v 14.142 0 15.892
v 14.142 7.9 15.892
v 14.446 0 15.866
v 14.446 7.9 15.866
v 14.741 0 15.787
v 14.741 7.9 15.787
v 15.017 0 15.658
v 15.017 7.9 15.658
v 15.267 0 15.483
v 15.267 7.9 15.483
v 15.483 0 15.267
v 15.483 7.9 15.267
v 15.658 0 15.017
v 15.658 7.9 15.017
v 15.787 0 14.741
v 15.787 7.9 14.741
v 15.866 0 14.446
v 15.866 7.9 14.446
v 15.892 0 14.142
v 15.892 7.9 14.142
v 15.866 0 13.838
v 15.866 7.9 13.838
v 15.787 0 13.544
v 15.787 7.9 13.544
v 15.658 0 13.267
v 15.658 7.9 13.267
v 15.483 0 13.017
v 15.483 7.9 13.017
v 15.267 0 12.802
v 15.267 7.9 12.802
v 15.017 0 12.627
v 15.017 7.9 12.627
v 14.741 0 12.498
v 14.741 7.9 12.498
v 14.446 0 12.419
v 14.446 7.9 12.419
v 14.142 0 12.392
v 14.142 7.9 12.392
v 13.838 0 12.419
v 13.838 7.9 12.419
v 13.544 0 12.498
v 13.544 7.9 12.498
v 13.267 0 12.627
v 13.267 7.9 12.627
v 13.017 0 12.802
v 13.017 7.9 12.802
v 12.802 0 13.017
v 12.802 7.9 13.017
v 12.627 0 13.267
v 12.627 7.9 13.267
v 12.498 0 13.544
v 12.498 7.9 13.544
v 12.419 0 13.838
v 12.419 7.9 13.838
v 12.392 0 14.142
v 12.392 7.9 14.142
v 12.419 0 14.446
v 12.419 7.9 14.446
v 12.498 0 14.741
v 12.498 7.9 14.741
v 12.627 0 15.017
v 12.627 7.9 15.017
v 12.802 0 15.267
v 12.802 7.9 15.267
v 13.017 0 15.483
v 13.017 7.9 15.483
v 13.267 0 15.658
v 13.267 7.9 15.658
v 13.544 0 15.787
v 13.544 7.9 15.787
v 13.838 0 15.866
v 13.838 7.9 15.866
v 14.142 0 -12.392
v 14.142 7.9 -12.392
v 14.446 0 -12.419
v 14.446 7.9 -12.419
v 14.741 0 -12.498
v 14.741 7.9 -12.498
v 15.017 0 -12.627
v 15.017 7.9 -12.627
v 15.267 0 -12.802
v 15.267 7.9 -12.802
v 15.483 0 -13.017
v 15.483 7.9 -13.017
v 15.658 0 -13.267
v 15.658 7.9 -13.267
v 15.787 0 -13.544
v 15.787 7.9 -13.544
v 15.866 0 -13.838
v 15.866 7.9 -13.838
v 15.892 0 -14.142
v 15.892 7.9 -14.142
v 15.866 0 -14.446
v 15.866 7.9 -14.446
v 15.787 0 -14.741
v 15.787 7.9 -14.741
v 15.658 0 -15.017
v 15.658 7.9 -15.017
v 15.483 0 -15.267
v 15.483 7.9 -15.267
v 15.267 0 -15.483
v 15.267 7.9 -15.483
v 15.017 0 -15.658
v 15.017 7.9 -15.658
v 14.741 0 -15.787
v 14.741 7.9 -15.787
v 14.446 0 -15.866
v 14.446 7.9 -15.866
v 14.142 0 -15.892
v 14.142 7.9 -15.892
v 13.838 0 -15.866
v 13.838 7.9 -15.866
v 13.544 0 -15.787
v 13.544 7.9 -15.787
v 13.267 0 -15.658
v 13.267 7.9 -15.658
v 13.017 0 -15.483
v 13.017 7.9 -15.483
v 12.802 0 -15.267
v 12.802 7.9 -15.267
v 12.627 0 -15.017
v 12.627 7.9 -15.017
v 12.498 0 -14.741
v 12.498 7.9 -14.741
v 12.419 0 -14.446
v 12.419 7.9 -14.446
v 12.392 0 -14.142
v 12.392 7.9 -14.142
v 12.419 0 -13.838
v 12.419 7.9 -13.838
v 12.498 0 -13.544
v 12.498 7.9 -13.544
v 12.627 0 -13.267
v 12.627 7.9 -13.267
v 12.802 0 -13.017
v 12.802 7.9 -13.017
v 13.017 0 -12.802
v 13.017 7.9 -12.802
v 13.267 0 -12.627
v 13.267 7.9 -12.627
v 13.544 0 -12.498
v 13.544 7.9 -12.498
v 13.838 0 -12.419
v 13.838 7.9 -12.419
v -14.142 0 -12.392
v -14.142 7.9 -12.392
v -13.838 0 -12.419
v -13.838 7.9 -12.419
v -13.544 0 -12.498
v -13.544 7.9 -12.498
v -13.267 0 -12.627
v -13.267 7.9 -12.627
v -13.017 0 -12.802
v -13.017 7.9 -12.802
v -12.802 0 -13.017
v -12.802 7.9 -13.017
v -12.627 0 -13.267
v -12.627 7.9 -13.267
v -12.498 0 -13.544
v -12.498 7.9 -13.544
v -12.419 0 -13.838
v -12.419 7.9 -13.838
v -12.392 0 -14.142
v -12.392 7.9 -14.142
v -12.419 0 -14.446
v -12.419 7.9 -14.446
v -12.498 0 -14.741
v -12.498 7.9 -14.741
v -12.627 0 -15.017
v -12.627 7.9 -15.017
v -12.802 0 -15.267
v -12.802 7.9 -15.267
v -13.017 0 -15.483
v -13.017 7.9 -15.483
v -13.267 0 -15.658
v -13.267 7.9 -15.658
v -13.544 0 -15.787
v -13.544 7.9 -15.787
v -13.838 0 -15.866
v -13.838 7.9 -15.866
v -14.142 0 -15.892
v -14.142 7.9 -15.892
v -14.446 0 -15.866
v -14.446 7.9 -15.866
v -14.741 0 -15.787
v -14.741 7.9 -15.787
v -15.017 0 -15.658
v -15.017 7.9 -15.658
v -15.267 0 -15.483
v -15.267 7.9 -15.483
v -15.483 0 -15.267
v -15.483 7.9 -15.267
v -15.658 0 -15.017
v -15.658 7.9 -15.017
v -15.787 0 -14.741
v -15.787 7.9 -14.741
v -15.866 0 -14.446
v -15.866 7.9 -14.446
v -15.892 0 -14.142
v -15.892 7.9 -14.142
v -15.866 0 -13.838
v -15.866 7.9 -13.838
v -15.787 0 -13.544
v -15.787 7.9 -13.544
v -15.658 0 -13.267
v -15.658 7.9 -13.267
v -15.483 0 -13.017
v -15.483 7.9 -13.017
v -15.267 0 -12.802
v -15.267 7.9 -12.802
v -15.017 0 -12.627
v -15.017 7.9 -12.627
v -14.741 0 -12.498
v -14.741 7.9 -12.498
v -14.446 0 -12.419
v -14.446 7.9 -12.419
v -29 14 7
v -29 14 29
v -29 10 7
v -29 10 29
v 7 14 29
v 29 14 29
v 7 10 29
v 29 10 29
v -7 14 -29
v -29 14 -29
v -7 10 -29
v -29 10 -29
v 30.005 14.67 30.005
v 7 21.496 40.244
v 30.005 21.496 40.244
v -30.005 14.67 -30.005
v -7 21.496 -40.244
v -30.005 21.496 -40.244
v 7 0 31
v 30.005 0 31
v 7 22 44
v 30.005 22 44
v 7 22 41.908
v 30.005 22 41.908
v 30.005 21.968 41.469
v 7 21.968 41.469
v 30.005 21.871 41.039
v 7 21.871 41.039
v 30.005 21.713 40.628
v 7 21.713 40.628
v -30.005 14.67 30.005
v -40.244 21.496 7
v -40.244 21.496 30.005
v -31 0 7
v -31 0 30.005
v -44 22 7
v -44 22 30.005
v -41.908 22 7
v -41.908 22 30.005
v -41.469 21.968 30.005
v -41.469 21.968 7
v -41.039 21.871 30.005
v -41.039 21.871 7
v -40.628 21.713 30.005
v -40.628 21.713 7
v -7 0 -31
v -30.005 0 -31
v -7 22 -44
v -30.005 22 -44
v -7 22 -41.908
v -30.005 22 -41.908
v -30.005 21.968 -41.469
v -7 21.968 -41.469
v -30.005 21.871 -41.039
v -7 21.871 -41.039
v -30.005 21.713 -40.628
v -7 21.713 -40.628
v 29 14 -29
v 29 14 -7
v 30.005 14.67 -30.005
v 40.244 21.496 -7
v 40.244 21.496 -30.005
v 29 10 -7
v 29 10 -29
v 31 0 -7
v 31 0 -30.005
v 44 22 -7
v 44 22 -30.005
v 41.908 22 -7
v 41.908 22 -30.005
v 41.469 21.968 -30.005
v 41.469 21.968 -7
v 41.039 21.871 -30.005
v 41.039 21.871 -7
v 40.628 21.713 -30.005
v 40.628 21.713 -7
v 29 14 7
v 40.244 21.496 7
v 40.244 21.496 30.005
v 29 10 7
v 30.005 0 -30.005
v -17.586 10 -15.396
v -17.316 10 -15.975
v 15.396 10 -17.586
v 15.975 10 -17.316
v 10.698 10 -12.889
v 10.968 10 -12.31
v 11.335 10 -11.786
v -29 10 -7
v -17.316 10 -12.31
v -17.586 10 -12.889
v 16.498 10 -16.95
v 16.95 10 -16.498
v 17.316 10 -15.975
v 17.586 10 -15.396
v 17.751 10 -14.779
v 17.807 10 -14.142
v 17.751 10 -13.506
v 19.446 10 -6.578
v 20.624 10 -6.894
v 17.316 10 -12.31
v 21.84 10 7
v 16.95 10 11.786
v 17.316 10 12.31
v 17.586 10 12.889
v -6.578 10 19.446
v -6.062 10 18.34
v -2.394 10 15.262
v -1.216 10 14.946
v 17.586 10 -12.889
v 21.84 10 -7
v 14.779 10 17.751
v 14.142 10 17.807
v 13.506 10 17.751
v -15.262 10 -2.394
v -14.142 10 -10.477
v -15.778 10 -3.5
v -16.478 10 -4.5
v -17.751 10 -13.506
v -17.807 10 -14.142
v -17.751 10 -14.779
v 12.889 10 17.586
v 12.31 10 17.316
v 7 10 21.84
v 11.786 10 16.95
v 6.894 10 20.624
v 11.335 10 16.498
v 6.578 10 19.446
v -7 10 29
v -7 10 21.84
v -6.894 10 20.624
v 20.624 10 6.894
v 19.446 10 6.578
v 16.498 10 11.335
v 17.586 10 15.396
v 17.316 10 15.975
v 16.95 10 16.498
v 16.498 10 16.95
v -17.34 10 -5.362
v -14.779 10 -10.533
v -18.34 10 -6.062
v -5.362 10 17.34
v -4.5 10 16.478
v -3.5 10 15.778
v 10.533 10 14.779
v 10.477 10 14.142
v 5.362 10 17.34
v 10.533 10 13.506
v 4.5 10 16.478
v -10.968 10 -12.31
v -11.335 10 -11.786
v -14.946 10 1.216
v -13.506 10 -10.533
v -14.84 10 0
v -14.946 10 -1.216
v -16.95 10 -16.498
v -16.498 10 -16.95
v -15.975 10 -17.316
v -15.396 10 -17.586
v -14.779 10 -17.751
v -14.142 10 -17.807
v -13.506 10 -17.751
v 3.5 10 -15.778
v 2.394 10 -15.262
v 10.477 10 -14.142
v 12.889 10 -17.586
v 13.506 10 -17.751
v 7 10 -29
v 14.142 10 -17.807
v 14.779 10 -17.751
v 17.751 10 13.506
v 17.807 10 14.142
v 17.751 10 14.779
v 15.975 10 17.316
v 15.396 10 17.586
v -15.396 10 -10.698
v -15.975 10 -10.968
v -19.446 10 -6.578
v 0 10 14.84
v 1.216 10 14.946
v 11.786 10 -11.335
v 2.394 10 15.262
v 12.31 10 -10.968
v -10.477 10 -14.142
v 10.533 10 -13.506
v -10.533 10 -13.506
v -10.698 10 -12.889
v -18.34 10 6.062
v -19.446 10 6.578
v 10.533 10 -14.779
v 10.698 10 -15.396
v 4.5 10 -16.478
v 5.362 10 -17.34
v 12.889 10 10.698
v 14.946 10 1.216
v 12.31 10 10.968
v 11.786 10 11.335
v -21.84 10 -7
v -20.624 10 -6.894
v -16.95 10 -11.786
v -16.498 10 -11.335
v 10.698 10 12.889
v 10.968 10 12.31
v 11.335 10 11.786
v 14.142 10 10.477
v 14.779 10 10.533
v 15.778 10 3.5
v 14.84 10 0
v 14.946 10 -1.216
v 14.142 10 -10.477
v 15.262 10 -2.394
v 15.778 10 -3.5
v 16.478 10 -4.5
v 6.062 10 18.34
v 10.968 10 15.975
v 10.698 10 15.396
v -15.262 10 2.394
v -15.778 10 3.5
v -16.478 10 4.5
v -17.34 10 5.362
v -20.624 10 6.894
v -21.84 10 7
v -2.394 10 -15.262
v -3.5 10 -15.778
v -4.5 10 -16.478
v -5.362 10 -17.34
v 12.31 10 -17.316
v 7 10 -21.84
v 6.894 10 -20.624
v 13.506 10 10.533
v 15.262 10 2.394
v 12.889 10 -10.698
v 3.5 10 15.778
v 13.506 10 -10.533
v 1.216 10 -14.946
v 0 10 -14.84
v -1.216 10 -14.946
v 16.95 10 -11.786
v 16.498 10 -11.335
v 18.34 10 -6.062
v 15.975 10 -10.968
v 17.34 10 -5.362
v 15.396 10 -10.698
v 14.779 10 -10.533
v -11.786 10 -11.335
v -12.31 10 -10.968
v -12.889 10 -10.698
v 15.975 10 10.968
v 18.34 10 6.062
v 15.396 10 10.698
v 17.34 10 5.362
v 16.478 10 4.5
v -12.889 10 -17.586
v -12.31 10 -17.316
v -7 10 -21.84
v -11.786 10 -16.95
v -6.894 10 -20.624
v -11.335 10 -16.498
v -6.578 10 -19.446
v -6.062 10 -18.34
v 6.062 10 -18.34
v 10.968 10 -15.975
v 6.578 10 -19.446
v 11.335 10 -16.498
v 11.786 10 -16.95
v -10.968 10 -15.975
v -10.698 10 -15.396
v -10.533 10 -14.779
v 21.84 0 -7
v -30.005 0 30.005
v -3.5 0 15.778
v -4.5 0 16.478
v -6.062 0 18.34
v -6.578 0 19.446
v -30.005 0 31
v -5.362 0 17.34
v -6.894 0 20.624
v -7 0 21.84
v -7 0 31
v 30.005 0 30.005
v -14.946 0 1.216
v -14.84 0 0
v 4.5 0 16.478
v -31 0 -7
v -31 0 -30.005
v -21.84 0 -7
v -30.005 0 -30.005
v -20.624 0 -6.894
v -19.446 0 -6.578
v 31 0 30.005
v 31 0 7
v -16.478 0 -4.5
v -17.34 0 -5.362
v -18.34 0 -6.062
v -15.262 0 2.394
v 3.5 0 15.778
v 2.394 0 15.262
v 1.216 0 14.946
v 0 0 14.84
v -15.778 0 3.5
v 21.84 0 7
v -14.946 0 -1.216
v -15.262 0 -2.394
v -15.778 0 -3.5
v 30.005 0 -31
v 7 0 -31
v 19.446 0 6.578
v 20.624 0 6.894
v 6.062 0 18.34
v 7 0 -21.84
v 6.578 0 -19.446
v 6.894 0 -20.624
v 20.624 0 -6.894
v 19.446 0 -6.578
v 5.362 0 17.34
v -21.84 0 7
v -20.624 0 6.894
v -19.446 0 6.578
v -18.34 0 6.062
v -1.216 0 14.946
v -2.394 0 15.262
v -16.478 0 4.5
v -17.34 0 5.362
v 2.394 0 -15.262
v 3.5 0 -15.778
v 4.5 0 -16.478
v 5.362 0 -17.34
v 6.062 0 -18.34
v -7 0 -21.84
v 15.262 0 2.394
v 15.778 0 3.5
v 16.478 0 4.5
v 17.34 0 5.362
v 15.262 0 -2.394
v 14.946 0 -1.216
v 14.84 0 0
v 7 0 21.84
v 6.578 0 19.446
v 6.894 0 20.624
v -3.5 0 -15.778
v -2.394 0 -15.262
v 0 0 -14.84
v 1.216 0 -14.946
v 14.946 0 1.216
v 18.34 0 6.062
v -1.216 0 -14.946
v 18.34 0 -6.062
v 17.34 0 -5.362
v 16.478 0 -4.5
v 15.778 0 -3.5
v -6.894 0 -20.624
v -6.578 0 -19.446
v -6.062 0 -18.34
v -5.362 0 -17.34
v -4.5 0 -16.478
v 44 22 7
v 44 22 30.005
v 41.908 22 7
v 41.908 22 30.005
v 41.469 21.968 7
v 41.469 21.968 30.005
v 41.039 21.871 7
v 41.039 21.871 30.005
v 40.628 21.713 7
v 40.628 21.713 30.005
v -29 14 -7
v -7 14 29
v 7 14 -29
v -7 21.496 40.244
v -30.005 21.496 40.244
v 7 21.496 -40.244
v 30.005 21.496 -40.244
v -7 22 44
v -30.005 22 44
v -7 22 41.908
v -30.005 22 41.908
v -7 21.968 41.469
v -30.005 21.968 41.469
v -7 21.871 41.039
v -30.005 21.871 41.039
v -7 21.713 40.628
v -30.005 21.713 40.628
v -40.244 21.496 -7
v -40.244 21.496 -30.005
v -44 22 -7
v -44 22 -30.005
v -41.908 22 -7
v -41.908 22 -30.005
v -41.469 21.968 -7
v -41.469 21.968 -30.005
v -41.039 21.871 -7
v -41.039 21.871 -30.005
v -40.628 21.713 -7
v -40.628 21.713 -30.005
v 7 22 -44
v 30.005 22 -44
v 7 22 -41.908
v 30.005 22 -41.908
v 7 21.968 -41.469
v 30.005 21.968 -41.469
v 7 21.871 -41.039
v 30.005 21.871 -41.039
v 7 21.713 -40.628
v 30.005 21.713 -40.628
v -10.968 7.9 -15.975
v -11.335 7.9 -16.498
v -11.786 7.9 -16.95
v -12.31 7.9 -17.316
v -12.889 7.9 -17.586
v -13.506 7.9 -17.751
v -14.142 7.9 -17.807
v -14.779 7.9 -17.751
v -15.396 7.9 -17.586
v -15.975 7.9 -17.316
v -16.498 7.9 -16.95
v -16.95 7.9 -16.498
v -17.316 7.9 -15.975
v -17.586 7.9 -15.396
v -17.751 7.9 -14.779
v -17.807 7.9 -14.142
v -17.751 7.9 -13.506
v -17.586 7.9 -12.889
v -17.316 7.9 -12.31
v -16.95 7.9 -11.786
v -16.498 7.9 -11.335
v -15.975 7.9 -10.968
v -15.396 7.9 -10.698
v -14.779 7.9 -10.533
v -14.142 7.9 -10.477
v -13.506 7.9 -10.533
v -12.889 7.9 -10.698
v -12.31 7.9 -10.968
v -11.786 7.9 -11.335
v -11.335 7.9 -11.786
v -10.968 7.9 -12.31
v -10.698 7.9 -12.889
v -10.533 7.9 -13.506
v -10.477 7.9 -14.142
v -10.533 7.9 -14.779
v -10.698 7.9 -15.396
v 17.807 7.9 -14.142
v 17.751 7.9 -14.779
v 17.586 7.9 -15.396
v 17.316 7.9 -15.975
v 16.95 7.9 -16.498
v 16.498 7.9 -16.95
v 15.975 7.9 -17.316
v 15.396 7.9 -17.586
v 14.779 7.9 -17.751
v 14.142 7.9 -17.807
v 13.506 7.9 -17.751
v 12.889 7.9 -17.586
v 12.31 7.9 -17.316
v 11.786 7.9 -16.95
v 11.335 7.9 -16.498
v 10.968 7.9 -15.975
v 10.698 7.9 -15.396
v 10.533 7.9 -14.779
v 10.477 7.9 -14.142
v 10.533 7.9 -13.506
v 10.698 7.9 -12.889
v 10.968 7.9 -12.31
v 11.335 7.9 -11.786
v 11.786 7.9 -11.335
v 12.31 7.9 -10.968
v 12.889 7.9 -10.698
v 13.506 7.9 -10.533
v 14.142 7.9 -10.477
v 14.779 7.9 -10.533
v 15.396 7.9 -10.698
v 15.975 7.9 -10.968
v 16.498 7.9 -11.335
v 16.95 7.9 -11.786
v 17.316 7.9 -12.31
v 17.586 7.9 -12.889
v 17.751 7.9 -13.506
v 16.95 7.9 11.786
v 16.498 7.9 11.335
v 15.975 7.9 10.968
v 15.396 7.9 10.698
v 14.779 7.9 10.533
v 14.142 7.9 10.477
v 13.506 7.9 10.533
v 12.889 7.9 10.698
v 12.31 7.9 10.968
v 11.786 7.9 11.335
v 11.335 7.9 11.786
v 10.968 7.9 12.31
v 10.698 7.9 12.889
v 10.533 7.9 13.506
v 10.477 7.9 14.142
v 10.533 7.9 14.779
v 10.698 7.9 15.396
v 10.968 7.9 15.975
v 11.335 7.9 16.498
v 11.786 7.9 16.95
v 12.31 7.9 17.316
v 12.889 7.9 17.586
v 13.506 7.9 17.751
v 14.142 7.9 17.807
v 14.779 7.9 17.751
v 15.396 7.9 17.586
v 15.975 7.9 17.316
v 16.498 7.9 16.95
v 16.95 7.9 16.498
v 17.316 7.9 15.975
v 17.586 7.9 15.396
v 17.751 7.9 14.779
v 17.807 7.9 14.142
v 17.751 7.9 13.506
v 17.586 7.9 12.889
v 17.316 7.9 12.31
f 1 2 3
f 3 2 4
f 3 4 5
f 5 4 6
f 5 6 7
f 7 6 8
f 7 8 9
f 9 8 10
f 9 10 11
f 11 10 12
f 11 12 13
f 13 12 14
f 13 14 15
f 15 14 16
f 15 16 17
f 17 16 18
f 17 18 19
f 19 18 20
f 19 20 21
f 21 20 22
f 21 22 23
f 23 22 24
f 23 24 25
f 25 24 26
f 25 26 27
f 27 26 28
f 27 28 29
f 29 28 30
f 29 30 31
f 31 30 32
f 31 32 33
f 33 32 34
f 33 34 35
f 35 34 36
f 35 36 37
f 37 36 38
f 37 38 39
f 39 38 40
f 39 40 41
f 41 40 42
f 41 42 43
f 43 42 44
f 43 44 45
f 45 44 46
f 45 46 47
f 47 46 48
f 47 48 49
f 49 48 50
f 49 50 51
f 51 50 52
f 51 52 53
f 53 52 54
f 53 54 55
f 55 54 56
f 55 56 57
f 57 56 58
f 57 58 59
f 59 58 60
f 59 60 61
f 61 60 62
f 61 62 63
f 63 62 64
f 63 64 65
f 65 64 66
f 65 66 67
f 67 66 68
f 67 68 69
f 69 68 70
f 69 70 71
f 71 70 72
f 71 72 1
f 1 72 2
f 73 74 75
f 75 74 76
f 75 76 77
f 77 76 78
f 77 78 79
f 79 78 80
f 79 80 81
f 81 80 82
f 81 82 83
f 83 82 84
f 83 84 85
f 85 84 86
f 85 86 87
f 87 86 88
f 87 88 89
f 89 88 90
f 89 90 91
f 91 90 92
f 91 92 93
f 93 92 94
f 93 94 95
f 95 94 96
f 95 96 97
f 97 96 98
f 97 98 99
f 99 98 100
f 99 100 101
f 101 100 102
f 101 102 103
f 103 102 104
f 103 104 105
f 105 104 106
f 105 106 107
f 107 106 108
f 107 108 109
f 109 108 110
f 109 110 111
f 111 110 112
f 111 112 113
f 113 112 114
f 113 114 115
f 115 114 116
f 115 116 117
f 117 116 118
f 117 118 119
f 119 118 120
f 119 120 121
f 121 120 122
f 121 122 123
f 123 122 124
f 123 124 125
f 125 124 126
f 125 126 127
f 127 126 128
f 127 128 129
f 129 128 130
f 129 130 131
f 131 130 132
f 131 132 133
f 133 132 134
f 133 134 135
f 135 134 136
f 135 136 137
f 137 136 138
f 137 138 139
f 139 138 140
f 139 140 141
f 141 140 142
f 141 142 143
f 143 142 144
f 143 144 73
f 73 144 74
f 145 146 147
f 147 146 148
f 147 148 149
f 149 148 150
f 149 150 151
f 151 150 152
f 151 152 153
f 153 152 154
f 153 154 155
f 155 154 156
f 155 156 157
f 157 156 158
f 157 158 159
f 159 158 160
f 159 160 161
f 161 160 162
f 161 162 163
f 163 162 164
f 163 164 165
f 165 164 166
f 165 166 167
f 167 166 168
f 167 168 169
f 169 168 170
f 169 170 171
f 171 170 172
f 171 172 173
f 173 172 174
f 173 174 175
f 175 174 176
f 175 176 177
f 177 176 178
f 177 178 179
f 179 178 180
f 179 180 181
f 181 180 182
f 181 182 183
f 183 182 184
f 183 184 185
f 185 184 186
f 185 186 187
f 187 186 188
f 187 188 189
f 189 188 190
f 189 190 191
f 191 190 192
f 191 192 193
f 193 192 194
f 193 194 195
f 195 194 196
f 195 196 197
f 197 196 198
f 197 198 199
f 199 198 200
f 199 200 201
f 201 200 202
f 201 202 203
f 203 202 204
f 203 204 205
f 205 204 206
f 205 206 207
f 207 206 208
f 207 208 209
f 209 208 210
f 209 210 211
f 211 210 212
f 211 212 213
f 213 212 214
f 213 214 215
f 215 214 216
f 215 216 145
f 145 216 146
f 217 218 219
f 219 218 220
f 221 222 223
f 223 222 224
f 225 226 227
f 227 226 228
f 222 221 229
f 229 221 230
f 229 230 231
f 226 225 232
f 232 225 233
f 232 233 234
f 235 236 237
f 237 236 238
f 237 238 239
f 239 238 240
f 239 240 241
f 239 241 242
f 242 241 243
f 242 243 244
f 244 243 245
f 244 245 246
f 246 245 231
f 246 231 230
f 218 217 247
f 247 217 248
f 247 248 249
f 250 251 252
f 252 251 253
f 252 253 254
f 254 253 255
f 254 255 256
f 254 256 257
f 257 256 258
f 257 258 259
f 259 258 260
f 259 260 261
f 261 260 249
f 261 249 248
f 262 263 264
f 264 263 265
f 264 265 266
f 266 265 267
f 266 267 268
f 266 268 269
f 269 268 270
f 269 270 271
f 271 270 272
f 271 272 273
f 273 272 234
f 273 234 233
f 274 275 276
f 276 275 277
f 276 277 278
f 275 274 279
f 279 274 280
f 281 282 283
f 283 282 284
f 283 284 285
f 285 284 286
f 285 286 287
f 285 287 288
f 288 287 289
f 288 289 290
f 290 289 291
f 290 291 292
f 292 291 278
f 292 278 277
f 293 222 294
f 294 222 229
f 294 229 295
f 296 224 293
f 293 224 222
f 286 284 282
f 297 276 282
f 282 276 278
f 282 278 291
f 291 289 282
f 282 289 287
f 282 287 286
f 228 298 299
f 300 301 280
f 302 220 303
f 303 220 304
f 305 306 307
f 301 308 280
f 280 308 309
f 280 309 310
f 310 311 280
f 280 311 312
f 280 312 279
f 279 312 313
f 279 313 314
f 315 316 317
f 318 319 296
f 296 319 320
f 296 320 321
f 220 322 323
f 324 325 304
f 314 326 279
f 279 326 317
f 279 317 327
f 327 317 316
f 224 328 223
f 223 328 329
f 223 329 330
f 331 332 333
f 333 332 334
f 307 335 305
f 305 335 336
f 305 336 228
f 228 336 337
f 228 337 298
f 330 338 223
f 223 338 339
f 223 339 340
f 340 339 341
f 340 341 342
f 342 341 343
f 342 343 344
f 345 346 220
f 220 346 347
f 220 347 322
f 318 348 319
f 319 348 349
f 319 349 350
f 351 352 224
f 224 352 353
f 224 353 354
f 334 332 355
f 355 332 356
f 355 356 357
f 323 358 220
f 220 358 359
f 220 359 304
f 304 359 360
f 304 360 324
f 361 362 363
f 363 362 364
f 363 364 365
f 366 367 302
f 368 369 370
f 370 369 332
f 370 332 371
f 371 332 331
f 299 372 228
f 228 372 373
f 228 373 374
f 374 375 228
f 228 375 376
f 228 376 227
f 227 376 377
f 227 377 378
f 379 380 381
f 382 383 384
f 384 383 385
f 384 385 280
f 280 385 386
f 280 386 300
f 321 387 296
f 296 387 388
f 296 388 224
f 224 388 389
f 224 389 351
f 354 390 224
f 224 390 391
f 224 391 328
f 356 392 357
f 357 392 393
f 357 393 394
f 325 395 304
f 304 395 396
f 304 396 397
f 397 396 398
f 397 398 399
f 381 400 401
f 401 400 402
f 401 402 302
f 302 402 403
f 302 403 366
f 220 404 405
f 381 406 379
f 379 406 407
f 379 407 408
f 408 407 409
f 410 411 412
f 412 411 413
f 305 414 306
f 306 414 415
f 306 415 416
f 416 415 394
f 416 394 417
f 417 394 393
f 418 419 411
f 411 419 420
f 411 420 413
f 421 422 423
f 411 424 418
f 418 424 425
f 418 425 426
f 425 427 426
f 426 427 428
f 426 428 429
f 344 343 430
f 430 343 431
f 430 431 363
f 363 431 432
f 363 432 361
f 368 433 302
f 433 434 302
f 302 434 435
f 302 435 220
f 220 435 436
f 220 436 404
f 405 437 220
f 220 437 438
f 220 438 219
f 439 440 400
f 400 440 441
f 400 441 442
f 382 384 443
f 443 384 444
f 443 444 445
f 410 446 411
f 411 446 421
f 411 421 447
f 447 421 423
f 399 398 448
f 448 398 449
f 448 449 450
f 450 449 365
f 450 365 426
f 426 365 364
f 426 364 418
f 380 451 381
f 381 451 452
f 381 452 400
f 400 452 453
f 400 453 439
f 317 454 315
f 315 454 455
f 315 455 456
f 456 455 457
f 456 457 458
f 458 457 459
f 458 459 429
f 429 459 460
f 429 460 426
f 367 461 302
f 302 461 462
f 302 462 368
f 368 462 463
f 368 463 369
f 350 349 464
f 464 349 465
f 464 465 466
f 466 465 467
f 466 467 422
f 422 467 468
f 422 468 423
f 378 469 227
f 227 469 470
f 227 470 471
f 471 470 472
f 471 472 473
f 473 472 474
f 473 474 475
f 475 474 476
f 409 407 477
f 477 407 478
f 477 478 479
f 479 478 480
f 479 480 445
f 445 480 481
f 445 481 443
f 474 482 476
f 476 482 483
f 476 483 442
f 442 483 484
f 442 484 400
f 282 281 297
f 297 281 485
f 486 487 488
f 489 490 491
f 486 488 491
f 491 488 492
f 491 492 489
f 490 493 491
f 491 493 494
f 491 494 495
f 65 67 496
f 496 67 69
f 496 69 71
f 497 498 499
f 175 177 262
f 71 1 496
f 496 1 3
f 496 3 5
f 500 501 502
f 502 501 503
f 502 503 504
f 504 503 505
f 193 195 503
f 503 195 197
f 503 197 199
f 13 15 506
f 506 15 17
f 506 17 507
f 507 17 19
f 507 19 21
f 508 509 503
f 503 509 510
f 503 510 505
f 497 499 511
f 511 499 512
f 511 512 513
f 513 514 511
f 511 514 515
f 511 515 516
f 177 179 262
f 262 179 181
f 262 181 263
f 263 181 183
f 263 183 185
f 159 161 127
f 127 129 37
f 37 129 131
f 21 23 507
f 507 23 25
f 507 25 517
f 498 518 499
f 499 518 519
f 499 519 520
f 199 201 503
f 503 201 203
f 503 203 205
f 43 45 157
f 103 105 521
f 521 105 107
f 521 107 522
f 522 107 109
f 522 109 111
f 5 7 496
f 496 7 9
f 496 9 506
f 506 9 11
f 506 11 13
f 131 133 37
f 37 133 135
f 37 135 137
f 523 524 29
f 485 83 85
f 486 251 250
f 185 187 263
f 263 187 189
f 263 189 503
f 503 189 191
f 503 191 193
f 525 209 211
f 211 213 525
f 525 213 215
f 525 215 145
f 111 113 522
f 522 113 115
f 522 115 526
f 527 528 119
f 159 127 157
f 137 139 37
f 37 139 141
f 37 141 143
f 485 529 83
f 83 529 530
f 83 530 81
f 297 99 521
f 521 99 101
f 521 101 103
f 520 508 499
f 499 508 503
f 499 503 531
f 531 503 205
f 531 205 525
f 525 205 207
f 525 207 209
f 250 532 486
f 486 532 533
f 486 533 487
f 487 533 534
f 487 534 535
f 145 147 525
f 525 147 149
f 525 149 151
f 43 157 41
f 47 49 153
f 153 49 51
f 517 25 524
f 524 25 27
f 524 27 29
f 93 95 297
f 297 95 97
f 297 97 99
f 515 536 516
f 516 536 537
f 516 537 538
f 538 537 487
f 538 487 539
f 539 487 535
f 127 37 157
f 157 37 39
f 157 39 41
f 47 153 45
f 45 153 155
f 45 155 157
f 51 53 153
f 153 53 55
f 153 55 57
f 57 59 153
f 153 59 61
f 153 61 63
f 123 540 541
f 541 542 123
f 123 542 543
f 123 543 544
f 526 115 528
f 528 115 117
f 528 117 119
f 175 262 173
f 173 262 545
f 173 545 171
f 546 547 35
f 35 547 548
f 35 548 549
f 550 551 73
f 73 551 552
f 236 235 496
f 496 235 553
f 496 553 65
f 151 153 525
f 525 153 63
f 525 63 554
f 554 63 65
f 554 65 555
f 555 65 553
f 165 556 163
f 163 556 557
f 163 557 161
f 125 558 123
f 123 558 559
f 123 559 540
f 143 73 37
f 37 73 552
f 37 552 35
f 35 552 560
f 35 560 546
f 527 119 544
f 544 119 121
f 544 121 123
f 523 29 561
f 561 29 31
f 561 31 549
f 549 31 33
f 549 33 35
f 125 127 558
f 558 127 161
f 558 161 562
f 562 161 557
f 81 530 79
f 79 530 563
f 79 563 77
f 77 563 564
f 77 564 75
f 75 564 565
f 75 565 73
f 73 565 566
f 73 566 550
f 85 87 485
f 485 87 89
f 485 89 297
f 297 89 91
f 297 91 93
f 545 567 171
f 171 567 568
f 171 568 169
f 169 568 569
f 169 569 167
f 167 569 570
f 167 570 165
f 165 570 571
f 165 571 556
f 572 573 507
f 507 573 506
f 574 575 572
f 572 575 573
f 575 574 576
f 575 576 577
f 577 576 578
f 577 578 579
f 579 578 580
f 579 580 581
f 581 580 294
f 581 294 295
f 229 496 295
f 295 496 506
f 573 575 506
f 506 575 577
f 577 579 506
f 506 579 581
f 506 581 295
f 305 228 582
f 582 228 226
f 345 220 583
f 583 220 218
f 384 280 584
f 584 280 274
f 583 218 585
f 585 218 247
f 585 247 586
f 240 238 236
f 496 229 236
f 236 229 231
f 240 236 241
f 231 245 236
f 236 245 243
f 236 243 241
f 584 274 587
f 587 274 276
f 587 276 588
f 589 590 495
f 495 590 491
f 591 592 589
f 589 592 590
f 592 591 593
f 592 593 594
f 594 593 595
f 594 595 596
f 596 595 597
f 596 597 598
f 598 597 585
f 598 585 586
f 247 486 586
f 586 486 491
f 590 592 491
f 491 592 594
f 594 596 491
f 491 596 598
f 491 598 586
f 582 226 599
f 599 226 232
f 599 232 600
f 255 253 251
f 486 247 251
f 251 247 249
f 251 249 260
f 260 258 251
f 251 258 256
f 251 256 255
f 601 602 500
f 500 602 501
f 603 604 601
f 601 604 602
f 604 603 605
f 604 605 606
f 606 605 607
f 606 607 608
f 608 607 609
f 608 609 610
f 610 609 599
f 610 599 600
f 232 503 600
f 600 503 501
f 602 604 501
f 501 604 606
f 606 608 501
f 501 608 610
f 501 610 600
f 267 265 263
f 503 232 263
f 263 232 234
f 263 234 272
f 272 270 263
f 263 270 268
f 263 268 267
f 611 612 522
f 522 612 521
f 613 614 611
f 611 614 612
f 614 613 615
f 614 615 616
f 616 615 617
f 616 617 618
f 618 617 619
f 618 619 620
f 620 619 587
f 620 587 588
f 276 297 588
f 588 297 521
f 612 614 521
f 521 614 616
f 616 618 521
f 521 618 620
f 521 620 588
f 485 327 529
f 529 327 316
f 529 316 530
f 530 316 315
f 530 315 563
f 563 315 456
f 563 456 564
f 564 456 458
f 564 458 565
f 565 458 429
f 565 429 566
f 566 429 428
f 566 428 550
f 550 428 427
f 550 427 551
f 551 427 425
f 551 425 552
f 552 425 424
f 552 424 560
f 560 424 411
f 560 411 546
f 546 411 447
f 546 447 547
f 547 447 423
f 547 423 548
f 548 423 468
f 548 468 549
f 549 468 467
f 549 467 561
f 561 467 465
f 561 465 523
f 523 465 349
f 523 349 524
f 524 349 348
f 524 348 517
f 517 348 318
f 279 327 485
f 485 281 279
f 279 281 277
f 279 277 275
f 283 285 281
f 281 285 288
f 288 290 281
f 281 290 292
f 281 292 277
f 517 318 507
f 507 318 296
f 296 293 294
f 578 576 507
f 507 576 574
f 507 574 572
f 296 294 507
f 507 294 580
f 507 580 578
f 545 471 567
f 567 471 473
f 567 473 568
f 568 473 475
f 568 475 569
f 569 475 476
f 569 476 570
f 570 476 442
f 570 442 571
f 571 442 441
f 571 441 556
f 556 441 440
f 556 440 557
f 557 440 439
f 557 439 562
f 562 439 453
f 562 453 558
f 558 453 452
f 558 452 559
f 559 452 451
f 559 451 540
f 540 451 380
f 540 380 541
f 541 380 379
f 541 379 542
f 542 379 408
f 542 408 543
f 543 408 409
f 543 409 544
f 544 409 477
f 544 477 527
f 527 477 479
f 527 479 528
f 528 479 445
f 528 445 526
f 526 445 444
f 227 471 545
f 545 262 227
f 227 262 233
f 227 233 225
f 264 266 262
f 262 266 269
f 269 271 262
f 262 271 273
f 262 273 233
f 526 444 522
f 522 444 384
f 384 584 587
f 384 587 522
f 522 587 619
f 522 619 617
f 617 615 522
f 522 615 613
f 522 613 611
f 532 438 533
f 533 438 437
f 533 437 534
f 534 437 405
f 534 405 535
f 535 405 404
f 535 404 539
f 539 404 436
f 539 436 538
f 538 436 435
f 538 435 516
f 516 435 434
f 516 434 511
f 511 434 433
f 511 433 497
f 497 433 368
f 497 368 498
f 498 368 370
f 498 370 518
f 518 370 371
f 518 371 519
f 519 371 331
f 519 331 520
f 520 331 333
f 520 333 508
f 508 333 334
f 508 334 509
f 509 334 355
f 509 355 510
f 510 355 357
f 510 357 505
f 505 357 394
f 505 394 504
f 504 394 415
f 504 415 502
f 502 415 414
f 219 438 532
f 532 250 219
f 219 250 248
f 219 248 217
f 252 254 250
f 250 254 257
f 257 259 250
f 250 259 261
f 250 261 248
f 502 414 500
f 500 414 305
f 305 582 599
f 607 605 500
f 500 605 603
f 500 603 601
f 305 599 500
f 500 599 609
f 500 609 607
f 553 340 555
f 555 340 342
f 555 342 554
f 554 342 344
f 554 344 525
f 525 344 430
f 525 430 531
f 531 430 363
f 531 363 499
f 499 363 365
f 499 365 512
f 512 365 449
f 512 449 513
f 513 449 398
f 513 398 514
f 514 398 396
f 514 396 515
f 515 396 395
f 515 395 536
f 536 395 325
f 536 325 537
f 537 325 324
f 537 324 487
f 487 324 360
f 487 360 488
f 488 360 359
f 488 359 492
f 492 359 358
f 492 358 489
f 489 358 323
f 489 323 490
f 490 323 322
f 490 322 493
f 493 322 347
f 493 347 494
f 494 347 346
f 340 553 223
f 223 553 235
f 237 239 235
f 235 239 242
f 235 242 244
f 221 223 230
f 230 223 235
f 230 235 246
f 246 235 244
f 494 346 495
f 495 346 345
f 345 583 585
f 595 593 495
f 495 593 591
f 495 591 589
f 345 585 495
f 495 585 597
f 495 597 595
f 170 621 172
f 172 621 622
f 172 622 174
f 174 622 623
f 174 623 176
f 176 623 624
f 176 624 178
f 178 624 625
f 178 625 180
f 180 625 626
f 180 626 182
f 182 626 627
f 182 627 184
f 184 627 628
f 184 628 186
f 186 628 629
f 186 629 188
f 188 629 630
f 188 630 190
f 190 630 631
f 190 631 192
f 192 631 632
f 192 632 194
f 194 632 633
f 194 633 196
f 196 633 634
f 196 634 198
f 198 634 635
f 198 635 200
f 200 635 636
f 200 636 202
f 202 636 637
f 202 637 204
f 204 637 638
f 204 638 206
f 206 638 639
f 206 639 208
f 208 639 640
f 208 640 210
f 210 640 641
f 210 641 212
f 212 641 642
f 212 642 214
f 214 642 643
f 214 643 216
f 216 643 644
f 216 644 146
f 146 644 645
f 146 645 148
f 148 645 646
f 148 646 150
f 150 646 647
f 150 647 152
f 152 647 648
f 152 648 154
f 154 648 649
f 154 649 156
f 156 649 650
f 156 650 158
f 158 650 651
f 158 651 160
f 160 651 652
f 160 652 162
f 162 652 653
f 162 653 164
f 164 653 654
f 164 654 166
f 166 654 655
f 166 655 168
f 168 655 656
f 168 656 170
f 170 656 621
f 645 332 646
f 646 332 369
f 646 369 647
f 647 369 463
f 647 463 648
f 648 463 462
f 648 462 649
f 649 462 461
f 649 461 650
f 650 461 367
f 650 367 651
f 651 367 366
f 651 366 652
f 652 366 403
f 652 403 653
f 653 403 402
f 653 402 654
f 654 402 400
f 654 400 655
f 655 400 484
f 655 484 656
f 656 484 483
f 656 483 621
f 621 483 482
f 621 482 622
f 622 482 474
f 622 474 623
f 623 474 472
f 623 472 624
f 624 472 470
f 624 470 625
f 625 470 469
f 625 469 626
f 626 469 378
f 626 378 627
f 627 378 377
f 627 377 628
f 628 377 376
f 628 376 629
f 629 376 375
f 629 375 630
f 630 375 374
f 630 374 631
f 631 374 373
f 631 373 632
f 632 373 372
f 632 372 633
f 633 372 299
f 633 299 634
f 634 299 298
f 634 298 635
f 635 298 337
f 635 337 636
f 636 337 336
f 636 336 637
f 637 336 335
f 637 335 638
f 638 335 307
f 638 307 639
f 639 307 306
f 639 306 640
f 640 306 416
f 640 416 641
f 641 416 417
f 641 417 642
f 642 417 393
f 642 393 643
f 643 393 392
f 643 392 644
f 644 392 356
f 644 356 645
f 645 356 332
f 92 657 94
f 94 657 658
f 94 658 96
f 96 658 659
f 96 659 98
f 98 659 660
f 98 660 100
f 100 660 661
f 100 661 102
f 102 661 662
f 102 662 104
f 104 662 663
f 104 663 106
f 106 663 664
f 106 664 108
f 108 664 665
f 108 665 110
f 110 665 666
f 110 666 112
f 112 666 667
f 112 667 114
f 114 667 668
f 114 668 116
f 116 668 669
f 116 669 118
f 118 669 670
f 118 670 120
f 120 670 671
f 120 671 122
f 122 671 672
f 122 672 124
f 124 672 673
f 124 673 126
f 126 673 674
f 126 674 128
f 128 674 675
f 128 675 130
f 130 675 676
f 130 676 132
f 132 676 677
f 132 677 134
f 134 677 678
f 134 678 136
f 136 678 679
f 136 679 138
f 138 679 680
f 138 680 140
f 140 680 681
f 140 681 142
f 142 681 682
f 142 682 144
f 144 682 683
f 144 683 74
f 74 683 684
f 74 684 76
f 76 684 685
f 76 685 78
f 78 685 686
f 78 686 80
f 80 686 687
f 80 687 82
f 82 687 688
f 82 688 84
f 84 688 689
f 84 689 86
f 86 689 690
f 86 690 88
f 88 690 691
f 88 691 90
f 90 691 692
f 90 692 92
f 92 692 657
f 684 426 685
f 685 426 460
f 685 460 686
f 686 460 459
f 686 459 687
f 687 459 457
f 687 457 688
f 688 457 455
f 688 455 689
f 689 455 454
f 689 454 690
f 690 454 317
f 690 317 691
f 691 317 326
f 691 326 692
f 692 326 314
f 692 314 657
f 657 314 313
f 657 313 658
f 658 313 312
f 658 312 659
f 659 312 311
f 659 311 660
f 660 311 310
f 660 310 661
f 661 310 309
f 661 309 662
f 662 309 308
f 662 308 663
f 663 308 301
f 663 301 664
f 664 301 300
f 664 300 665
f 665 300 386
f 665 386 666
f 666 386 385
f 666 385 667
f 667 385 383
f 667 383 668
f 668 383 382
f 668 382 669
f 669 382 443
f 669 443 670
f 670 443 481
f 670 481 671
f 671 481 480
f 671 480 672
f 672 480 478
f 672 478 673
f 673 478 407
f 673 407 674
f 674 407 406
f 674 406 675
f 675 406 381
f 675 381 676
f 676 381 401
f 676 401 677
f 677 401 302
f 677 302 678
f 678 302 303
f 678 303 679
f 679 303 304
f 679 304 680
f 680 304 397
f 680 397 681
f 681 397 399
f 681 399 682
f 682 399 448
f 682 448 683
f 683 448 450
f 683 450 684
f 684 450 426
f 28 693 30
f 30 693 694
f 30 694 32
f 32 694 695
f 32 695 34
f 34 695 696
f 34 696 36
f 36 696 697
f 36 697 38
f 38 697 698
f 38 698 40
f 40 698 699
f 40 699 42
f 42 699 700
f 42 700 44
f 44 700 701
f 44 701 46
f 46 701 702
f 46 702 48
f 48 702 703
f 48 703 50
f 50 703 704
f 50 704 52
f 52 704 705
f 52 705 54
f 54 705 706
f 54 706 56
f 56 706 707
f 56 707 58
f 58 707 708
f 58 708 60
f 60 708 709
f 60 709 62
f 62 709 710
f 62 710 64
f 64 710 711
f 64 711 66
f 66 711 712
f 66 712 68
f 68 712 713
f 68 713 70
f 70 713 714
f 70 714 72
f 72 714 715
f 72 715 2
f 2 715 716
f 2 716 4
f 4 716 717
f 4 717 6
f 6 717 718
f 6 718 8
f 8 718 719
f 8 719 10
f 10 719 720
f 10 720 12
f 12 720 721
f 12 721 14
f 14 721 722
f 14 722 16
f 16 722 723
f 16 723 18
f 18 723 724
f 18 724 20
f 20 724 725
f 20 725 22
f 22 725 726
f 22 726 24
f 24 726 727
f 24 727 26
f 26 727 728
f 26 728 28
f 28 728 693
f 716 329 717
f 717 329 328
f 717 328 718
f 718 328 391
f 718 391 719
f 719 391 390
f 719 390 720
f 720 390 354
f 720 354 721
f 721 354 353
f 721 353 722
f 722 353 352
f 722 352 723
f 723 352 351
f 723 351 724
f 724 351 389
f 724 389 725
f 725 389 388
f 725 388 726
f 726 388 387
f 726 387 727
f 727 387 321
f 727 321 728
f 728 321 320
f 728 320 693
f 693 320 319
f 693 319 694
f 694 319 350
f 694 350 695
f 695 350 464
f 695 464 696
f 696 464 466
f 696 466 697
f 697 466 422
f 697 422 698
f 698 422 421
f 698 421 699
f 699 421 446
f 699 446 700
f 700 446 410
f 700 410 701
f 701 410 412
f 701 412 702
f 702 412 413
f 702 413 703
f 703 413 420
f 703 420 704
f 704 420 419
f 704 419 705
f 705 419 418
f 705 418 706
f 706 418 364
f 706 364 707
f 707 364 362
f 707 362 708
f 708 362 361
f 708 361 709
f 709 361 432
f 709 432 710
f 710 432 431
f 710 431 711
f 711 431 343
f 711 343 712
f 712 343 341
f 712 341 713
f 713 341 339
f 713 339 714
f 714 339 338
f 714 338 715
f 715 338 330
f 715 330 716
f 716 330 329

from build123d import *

# Parameters (mm, degrees)
SKETCH1_W               = 58
SKETCH1_H               = 58
BOSS_EXTRUDE1_DEPTH     = 10
BOSS_EXTRUDE3_DEPTH     = 30.005
CIRPATTERN7_COUNT       = 4
CUT_EXTRUDE1_DEPTH      = 13
CUT_EXTRUDE1_DEPTH_BACK = 11
SKETCH8_R               = 1.75
CUT_EXTRUDE2_DEPTH      = 20
SKETCH9_R               = 3.665
CUT_EXTRUDE3_DEPTH      = 2.1


with BuildPart() as part:
    # Sketch1 → Boss-Extrude1 (new body)
    with BuildSketch(Plane(origin=(0, 0, 0), x_dir=(1, 0, 0), z_dir=(0, 1, 0))):
        Rectangle(SKETCH1_W, SKETCH1_H)
    extrude(amount=BOSS_EXTRUDE1_DEPTH)

    # Sketch2 → Boss-Extrude3 (add, symmetric)
    with BuildSketch(Plane.XY):
        with BuildLine():
            Line((29, 0), (29, 14))
            Line((29, 14), (40.244226325, 21.496150883))
            ThreePointArc((40.244226325, 21.496150883), (41.038974467, 21.871276079), (41.908326913, 22))
            Line((41.908326913, 22), (44, 22))
            Line((44, 22), (31, 0))
            Line((31, 0), (29, 0))
        make_face()
    boss_extrude3 = extrude(amount=BOSS_EXTRUDE3_DEPTH, both=True)

    # CirPattern7: Boss-Extrude3 ×4 about axis
    cirpattern7_axis = Axis((0, 0, 0), (0, 1, 0))
    for i in range(1, CIRPATTERN7_COUNT):
        add(boss_extrude3.rotate(cirpattern7_axis, i * 360 / CIRPATTERN7_COUNT))

    # Sketch7 → Cut-Extrude1 (cut, two sides)
    with BuildSketch(Plane(origin=(0, 10, 0), x_dir=(1, 0, 0), z_dir=(0, 1, 0))) as cut_extrude1_sk:
        with BuildLine():
            Line((21.84, 7), (54.527297937, 7))
            Line((54.527297937, 7), (54.527297937, -7))
            Line((54.527297937, -7), (21.84, -7))
            ThreePointArc((21.84, -7), (14.84, 0), (21.84, 7))
        make_face()
        with BuildLine():
            Line((7, -21.84), (7, -54.527297937))
            Line((7, -54.527297937), (-7, -54.527297937))
            Line((-7, -54.527297937), (-7, -21.84))
            ThreePointArc((-7, -21.84), (0, -14.84), (7, -21.84))
        make_face()
        with BuildLine():
            Line((-21.84, -7), (-54.527297937, -7))
            Line((-54.527297937, -7), (-54.527297937, 7))
            Line((-54.527297937, 7), (-21.84, 7))
            ThreePointArc((-21.84, 7), (-14.84, 0), (-21.84, -7))
        make_face()
        with BuildLine():
            Line((-7, 21.84), (-7, 54.527297937))
            Line((-7, 54.527297937), (7, 54.527297937))
            Line((7, 54.527297937), (7, 21.84))
            ThreePointArc((7, 21.84), (0, 14.84), (-7, 21.84))
        make_face()
    extrude(amount=CUT_EXTRUDE1_DEPTH, mode=Mode.SUBTRACT)
    extrude(cut_extrude1_sk.sketch, amount=-CUT_EXTRUDE1_DEPTH_BACK, mode=Mode.SUBTRACT)

    # Sketch8 → Cut-Extrude2 (cut)
    with BuildSketch(Plane(origin=(-225.294025085, 10, 60.777514946), x_dir=(0, 0, -1), z_dir=(0, 1, 0))):
        with Locations((74.91965057, -211.151889461)):
            Circle(SKETCH8_R)
        with Locations((74.91965057, -239.436160708)):
            Circle(SKETCH8_R)
        with Locations((46.635379323, -239.436160708)):
            Circle(SKETCH8_R)
    extrude(amount=-CUT_EXTRUDE2_DEPTH, mode=Mode.SUBTRACT)

    # Sketch9 → Cut-Extrude3 (cut)
    with BuildSketch(Plane(origin=(0, 10, 0), x_dir=(1, 0, 0), z_dir=(0, 1, 0))):
        with Locations((-14.142135624, 14.142135624)):
            Circle(SKETCH9_R)
        with Locations((14.142135624, -14.142135624)):
            Circle(SKETCH9_R)
        with Locations((14.142135624, 14.142135624)):
            Circle(SKETCH9_R)
    extrude(amount=-CUT_EXTRUDE3_DEPTH, mode=Mode.SUBTRACT)


solid = part.part
